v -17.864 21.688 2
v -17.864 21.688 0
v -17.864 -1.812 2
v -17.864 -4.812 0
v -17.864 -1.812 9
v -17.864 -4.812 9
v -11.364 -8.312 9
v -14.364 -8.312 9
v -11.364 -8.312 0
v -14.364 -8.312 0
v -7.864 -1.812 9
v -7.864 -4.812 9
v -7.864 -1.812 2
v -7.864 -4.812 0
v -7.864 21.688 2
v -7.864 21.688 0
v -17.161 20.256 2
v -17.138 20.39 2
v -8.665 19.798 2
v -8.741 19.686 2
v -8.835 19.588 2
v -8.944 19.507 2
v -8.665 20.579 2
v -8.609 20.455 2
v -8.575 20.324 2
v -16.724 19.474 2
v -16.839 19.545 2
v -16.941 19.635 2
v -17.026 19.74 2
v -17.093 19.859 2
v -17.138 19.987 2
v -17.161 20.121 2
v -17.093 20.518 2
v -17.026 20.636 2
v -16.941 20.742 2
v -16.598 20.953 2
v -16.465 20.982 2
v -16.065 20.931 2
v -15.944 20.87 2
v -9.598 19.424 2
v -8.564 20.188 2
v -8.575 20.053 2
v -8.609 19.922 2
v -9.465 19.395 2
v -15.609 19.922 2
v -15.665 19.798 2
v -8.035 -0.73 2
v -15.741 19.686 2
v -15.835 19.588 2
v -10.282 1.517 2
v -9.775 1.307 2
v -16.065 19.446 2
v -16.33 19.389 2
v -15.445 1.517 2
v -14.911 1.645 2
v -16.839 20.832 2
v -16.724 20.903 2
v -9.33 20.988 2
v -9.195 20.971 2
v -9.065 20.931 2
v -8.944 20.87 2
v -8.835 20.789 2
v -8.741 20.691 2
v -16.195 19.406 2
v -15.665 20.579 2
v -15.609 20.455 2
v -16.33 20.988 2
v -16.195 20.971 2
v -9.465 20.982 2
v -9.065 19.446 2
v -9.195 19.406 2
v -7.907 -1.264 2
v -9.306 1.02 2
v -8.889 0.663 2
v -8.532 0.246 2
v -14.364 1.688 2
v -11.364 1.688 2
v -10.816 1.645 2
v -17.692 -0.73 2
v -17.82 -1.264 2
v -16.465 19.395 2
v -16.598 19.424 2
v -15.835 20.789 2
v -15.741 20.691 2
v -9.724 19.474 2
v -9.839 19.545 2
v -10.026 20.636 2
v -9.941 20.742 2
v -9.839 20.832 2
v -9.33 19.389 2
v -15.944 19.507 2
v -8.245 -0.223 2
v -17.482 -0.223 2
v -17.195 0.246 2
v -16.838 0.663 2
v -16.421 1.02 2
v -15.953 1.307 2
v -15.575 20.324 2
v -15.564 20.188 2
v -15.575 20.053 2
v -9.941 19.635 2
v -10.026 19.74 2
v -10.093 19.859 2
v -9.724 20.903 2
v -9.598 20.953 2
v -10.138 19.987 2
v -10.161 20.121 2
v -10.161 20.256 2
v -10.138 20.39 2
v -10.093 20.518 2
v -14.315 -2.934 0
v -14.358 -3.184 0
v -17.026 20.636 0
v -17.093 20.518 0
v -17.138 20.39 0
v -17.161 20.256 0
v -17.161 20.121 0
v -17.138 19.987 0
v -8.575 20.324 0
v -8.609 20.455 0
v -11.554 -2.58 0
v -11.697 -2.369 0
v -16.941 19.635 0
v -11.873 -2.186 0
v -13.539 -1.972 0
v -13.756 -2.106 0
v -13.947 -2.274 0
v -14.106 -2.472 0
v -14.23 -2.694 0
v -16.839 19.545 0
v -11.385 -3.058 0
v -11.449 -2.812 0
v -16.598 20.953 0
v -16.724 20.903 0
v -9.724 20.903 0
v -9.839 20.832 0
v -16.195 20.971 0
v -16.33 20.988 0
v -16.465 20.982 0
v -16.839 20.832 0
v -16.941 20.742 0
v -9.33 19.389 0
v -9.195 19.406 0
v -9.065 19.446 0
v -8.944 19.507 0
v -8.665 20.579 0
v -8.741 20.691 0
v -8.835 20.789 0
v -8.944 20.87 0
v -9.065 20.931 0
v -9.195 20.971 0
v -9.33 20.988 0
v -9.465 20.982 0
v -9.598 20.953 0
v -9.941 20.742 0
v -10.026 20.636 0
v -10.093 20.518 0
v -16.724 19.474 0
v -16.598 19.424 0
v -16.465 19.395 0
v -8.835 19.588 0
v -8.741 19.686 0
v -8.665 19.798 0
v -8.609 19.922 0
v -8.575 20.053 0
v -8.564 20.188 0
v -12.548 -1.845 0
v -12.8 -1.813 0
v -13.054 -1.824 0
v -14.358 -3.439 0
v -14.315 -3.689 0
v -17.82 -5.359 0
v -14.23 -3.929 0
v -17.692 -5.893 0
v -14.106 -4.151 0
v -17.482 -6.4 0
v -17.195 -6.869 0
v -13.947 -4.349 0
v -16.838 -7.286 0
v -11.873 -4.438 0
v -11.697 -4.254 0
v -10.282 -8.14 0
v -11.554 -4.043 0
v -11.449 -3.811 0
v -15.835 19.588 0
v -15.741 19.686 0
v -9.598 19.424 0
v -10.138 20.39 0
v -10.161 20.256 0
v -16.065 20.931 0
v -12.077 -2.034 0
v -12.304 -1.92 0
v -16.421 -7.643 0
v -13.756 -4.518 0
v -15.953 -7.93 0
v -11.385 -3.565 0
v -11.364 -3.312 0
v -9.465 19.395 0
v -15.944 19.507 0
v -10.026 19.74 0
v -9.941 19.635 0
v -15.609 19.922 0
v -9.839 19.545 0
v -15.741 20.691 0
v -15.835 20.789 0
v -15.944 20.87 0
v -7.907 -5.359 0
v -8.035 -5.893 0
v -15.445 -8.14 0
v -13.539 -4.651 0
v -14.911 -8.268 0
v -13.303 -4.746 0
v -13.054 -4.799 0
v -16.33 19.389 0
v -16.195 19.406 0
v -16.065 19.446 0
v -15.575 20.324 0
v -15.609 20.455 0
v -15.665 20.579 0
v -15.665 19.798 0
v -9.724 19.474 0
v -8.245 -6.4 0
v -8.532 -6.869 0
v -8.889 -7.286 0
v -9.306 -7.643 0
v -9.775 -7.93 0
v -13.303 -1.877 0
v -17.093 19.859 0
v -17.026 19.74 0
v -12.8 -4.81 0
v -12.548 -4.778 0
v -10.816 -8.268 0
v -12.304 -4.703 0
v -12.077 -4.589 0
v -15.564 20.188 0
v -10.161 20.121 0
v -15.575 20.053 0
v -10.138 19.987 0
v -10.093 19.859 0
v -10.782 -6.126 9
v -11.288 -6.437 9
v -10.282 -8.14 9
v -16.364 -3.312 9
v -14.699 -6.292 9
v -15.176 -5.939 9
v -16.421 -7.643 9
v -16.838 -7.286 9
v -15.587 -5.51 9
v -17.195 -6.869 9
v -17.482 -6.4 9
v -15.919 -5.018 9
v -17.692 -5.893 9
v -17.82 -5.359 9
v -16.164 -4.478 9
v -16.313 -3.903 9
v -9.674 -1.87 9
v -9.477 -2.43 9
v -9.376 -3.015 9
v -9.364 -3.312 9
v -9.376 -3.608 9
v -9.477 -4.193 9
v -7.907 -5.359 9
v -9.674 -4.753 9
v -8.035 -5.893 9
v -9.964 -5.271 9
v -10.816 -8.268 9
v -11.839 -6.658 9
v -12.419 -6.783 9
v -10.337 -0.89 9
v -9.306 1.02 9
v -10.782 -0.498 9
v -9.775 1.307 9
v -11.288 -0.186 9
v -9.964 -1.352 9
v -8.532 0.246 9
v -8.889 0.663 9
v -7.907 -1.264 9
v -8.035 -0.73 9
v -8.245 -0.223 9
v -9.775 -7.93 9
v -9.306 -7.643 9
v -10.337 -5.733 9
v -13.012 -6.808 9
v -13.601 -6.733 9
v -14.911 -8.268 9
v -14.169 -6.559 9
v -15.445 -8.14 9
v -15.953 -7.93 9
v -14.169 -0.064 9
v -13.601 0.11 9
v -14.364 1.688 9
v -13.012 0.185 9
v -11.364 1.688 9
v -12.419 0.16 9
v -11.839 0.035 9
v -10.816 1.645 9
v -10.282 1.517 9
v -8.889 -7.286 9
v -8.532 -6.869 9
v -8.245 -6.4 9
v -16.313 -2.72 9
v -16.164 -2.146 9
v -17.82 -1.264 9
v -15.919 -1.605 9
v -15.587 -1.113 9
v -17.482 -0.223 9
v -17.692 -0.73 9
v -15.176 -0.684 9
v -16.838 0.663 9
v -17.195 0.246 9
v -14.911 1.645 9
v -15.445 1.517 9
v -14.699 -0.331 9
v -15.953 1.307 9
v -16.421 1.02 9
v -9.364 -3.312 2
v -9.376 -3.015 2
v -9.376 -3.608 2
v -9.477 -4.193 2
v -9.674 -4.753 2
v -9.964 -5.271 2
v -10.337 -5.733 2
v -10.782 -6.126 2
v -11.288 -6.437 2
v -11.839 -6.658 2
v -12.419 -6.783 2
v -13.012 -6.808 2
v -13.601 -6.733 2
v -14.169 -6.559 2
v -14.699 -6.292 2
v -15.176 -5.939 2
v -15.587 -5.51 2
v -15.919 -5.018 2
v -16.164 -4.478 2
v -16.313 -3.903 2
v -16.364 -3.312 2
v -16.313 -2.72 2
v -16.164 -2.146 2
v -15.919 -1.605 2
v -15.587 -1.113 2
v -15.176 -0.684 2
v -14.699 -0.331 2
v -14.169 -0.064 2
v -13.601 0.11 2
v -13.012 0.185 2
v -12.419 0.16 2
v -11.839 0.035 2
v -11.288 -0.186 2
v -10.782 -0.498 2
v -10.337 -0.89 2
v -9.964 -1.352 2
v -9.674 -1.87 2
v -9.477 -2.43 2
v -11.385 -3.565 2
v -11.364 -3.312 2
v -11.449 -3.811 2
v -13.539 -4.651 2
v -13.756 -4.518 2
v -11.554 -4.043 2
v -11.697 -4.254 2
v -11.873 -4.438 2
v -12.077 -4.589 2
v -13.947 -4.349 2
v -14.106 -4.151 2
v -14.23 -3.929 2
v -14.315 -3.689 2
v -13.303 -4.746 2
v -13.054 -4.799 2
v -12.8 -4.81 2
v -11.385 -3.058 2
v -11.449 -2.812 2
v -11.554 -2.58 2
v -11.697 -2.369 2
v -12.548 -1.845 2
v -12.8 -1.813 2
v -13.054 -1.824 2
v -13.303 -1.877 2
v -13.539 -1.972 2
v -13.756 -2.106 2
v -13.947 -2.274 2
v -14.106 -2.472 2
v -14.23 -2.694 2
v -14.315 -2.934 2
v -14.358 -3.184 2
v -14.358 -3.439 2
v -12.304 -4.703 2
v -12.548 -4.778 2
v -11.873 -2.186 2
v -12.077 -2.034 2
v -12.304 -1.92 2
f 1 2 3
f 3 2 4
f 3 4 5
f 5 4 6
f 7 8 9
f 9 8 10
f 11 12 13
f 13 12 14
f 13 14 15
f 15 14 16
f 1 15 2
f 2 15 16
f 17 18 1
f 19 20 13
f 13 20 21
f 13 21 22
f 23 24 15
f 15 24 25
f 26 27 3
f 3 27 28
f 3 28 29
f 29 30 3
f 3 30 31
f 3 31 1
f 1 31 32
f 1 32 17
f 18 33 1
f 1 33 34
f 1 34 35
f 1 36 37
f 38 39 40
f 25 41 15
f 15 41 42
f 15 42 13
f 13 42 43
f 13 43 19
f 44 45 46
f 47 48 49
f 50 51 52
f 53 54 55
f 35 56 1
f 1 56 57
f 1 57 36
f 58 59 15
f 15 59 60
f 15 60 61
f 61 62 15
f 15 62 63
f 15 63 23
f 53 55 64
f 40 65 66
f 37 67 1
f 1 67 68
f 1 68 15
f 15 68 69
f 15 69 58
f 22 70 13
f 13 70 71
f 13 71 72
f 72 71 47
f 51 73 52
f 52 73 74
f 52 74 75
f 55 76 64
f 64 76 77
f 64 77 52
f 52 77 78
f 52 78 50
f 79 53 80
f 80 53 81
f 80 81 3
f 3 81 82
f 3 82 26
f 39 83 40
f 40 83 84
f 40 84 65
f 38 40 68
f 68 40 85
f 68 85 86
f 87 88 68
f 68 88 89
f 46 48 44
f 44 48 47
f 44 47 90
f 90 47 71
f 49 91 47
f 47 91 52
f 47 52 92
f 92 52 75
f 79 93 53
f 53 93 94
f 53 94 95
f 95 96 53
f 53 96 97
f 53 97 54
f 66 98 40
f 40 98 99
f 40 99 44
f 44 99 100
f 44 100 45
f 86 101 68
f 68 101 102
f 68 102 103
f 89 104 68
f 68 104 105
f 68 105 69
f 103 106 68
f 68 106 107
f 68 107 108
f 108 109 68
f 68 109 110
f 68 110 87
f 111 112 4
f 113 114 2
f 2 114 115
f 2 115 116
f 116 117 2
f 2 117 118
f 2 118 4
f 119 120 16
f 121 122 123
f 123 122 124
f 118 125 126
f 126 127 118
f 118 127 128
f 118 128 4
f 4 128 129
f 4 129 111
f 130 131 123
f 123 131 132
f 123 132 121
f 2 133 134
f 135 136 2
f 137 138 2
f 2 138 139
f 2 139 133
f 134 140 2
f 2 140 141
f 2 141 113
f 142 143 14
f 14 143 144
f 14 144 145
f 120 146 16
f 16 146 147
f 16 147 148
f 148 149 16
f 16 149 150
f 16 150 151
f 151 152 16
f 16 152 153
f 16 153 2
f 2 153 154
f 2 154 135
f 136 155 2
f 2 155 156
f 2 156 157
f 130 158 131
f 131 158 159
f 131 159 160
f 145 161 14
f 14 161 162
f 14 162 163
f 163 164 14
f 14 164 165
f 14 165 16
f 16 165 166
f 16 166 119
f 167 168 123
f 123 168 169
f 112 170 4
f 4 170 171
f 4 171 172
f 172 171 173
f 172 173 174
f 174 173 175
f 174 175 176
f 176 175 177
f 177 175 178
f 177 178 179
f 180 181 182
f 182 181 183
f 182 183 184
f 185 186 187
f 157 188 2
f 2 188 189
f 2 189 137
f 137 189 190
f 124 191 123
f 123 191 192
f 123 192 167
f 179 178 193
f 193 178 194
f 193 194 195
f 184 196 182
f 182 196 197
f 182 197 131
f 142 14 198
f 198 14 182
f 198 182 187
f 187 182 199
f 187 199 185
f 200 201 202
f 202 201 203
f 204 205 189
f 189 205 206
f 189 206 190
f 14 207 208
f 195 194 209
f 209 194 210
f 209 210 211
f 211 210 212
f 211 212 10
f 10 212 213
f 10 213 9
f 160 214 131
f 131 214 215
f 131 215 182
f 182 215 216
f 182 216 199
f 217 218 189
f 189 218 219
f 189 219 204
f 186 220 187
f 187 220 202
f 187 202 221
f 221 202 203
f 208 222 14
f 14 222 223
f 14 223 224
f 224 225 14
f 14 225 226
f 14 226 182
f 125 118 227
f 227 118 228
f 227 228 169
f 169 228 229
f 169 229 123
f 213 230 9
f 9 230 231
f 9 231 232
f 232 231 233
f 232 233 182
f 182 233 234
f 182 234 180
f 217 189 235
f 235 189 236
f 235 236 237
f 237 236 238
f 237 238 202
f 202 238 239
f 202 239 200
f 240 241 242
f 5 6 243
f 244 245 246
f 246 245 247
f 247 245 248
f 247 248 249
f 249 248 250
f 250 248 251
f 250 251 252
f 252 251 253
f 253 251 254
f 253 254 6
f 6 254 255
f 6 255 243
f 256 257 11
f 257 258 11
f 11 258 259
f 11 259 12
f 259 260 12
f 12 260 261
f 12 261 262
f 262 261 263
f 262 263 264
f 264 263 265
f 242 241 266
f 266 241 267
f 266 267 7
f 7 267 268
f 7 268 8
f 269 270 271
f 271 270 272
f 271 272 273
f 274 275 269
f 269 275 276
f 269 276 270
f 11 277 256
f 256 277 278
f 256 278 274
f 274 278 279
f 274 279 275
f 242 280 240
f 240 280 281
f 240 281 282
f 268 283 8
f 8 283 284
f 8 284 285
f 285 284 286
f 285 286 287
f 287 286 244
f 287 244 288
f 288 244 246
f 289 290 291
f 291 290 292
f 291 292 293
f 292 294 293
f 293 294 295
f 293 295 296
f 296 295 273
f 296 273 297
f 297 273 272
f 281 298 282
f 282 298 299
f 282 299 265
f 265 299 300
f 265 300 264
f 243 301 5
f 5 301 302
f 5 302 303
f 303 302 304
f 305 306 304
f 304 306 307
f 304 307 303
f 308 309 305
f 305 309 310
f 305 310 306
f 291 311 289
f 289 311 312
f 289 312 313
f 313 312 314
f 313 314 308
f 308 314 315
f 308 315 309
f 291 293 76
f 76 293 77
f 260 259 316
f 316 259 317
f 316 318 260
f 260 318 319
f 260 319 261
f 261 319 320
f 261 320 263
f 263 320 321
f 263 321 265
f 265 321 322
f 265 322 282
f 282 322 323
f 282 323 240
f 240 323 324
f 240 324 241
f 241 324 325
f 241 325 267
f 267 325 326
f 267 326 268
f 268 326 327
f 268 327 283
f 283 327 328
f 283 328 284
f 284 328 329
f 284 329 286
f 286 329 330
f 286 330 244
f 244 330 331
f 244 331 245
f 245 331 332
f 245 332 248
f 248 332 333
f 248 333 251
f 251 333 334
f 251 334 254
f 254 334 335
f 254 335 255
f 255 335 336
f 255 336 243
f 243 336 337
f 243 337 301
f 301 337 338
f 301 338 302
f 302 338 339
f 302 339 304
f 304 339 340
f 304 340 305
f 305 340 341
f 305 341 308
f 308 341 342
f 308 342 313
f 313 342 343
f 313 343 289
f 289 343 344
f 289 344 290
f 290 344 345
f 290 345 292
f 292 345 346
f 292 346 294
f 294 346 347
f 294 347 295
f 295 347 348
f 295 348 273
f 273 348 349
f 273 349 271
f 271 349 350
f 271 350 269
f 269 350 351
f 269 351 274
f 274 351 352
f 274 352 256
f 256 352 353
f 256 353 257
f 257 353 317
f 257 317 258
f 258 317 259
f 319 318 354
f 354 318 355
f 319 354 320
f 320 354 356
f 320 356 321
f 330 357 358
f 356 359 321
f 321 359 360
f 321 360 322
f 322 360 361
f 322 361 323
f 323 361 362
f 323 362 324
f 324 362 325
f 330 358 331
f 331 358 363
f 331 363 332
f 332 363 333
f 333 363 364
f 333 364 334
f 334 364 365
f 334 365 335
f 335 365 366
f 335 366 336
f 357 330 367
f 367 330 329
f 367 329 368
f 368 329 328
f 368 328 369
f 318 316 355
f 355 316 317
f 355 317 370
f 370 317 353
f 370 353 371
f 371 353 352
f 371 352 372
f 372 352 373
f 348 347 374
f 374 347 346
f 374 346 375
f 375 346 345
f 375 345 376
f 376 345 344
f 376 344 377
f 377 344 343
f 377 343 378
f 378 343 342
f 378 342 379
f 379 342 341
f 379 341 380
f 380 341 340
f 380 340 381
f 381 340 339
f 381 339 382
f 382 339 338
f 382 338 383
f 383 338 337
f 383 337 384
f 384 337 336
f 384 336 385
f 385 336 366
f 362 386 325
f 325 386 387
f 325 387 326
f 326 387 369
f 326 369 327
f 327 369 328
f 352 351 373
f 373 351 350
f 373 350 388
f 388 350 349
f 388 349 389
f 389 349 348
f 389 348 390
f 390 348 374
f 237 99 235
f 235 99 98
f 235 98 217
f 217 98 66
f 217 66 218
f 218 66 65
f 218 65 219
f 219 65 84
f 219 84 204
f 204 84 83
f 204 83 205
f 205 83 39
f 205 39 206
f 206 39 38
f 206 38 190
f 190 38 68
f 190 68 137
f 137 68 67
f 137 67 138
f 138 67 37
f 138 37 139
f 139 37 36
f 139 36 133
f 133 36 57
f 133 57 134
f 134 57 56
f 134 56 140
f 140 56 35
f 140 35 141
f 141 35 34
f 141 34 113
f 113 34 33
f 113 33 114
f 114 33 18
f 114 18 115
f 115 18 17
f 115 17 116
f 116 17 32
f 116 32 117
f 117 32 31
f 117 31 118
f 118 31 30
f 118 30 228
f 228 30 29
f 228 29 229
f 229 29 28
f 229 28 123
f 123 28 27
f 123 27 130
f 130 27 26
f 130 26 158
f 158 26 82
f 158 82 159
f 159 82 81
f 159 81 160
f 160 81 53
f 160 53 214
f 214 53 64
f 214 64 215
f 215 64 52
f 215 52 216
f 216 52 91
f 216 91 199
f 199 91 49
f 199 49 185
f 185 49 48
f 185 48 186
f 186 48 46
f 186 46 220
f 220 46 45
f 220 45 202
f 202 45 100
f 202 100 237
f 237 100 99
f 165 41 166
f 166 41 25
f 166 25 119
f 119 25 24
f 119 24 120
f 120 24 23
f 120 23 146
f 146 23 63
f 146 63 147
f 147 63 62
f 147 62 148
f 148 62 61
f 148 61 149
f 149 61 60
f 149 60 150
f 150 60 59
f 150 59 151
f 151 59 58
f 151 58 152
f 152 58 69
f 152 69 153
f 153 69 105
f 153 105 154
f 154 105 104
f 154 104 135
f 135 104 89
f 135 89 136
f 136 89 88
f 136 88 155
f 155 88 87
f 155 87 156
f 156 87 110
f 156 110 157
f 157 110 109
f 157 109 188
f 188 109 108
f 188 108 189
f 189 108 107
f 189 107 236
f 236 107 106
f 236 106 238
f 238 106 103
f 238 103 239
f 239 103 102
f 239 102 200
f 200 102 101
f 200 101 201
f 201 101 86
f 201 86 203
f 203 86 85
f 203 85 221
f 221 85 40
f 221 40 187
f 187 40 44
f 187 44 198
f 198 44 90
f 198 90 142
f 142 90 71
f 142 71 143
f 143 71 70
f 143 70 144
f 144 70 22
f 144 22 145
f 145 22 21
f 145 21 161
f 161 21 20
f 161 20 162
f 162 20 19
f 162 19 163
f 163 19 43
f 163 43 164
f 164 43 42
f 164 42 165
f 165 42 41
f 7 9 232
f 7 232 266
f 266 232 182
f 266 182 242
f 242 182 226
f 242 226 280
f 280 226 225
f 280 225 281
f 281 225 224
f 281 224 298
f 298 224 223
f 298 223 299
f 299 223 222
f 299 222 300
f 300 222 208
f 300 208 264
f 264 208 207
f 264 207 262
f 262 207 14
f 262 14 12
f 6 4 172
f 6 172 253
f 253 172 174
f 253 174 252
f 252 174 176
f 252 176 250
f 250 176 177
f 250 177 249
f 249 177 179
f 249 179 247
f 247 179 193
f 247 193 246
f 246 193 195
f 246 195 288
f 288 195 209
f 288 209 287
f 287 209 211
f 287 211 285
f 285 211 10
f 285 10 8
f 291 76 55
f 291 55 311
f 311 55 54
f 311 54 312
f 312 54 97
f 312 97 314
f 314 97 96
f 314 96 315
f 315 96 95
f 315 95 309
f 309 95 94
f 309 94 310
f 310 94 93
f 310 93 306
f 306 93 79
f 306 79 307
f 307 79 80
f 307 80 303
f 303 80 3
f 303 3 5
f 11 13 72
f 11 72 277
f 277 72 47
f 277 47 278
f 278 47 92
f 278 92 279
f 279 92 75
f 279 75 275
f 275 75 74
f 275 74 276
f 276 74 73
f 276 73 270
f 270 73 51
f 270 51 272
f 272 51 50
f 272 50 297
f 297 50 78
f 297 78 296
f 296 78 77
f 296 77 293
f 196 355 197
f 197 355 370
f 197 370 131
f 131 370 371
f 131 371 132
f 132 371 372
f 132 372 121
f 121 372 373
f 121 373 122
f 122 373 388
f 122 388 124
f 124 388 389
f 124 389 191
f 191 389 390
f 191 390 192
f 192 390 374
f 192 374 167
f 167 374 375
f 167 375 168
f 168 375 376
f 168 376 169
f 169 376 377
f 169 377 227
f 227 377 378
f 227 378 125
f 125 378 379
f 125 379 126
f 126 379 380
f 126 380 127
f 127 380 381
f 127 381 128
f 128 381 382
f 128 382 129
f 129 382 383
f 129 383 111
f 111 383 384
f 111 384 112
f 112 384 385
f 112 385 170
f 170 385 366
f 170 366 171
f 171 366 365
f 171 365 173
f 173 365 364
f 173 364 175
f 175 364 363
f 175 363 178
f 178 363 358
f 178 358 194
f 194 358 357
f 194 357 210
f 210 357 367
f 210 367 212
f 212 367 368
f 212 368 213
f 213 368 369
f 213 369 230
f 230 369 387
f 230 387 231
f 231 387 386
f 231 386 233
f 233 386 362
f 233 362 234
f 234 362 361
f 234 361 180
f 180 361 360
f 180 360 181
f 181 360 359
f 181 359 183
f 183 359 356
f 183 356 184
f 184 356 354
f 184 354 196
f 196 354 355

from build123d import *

# Parameters (mm, degrees)
SKETCH1_W           = 10
SKETCH1_H           = 30
BOSS_EXTRUDE1_DEPTH = 2
SKETCH2_W           = 10
SKETCH2_H           = 10
SKETCH2_R           = 3.5
BOSS_EXTRUDE2_DEPTH = 7
SKETCH3_R           = 0.8
CUT_EXTRUDE1_DEPTH  = 2
FILLET1_R           = 3.5
SKETCH4_R           = 1.5
CUT_EXTRUDE2_DEPTH  = 2


with BuildPart() as part:
    # Sketch1 → Boss-Extrude1 (new body)
    with BuildSketch(Plane.XY):
        with Locations((-12.863567867, 6.68847884)):
            Rectangle(SKETCH1_W, SKETCH1_H)
    extrude(amount=BOSS_EXTRUDE1_DEPTH)

    # Sketch2 → Boss-Extrude2 (add)
    with BuildSketch(Plane.XY.offset(2)):
        with Locations((-12.863567867, -3.31152116)):
            Rectangle(SKETCH2_W, SKETCH2_H)
        with Locations((-12.863567867, -3.31152116)):
            Circle(SKETCH2_R, mode=Mode.SUBTRACT)
    extrude(amount=BOSS_EXTRUDE2_DEPTH)

    # Sketch3 → Cut-Extrude1 (cut)
    with BuildSketch(Plane.XY.offset(2)):
        with Locations((-16.363567867, 20.18847884)):
            Circle(SKETCH3_R)
        with Locations((-9.363567867, 20.18847884)):
            Circle(SKETCH3_R)
    extrude(amount=-CUT_EXTRUDE1_DEPTH, mode=Mode.SUBTRACT)

    # Fillet1
    fillet1_edges = [part.edges().sort_by_distance(p)[0] for p in [
        (-7.863567867, -8.31152116, 4.5),
        (-17.863567867, -8.31152116, 4.5),
        (-17.863567867, 1.68847884, 5.5),
        (-7.863567867, 1.68847884, 5.5),
    ]]
    fillet(fillet1_edges, radius=FILLET1_R)

    # Sketch4 → Cut-Extrude2 (cut)
    with BuildSketch(Plane.XY.offset(2)):
        with Locations((-12.863567867, -3.31152116)):
            Circle(SKETCH4_R)
    extrude(amount=-CUT_EXTRUDE2_DEPTH, mode=Mode.SUBTRACT)


solid = part.part
